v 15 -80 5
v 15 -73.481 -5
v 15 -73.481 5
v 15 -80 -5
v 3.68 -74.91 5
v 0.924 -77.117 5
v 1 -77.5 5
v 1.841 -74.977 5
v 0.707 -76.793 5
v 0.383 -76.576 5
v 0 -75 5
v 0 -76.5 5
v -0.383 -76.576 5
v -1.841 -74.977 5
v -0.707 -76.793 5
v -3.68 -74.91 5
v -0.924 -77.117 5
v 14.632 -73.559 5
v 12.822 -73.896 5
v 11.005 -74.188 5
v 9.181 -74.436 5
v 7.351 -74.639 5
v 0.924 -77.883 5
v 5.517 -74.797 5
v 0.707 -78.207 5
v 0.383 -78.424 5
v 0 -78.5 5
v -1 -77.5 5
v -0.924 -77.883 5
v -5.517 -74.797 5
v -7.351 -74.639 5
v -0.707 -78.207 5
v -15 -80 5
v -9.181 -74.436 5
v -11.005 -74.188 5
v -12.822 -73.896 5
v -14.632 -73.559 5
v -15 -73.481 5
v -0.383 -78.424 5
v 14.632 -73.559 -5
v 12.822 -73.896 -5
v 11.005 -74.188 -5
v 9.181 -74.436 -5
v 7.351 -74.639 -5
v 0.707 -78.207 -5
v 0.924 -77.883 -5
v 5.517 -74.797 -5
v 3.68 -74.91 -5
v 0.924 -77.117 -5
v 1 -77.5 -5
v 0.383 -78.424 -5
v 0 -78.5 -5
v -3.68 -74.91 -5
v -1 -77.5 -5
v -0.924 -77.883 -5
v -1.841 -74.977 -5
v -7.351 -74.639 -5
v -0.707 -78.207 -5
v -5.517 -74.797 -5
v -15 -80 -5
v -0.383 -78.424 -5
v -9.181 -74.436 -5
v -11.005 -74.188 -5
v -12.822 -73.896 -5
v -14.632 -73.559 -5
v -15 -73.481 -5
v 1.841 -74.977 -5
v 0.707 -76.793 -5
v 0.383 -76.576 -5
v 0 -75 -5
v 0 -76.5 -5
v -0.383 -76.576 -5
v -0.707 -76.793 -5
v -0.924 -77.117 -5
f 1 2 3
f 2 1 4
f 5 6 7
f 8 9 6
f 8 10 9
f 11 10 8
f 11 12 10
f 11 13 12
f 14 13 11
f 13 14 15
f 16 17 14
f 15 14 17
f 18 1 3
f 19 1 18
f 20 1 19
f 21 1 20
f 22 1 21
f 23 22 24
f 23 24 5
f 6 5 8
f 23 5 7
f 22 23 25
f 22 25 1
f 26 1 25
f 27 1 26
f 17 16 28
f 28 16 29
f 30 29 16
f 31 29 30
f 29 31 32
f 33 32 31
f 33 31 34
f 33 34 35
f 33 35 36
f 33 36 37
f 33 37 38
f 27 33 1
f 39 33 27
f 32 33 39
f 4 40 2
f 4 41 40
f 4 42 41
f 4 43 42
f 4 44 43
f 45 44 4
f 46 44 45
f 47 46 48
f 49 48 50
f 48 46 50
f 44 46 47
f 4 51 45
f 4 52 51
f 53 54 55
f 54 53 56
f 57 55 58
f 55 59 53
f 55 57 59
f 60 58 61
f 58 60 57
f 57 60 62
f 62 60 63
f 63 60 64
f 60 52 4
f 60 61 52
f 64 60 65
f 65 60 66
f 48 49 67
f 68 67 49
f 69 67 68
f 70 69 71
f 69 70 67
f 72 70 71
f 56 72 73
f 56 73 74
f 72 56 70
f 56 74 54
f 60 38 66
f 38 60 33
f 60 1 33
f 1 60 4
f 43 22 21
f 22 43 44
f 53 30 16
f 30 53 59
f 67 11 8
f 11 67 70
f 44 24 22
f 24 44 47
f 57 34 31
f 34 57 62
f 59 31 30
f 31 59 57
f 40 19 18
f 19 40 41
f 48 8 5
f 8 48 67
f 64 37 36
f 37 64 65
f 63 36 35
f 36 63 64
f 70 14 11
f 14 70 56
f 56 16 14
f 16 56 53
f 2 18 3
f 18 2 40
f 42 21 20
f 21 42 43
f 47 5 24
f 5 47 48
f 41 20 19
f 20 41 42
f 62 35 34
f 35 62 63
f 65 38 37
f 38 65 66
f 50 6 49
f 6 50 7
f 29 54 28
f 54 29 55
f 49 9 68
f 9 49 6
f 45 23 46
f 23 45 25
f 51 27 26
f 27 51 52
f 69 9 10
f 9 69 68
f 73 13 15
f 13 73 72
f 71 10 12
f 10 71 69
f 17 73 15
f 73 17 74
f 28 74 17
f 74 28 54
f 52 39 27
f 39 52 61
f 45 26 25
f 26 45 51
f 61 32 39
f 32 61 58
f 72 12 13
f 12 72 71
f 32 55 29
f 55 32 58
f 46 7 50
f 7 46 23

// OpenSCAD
$fn=256;



difference(){
translate([0,-75,0])
cube([30,10,10],center=true);
translate([0,80,10])
cube([20,25,20],center=true);
cylinder(d=150,h=50,center=true);
        translate([0,-80+2.5,0])
cylinder(d=2,h=50,center=true,$fn=16);
}
